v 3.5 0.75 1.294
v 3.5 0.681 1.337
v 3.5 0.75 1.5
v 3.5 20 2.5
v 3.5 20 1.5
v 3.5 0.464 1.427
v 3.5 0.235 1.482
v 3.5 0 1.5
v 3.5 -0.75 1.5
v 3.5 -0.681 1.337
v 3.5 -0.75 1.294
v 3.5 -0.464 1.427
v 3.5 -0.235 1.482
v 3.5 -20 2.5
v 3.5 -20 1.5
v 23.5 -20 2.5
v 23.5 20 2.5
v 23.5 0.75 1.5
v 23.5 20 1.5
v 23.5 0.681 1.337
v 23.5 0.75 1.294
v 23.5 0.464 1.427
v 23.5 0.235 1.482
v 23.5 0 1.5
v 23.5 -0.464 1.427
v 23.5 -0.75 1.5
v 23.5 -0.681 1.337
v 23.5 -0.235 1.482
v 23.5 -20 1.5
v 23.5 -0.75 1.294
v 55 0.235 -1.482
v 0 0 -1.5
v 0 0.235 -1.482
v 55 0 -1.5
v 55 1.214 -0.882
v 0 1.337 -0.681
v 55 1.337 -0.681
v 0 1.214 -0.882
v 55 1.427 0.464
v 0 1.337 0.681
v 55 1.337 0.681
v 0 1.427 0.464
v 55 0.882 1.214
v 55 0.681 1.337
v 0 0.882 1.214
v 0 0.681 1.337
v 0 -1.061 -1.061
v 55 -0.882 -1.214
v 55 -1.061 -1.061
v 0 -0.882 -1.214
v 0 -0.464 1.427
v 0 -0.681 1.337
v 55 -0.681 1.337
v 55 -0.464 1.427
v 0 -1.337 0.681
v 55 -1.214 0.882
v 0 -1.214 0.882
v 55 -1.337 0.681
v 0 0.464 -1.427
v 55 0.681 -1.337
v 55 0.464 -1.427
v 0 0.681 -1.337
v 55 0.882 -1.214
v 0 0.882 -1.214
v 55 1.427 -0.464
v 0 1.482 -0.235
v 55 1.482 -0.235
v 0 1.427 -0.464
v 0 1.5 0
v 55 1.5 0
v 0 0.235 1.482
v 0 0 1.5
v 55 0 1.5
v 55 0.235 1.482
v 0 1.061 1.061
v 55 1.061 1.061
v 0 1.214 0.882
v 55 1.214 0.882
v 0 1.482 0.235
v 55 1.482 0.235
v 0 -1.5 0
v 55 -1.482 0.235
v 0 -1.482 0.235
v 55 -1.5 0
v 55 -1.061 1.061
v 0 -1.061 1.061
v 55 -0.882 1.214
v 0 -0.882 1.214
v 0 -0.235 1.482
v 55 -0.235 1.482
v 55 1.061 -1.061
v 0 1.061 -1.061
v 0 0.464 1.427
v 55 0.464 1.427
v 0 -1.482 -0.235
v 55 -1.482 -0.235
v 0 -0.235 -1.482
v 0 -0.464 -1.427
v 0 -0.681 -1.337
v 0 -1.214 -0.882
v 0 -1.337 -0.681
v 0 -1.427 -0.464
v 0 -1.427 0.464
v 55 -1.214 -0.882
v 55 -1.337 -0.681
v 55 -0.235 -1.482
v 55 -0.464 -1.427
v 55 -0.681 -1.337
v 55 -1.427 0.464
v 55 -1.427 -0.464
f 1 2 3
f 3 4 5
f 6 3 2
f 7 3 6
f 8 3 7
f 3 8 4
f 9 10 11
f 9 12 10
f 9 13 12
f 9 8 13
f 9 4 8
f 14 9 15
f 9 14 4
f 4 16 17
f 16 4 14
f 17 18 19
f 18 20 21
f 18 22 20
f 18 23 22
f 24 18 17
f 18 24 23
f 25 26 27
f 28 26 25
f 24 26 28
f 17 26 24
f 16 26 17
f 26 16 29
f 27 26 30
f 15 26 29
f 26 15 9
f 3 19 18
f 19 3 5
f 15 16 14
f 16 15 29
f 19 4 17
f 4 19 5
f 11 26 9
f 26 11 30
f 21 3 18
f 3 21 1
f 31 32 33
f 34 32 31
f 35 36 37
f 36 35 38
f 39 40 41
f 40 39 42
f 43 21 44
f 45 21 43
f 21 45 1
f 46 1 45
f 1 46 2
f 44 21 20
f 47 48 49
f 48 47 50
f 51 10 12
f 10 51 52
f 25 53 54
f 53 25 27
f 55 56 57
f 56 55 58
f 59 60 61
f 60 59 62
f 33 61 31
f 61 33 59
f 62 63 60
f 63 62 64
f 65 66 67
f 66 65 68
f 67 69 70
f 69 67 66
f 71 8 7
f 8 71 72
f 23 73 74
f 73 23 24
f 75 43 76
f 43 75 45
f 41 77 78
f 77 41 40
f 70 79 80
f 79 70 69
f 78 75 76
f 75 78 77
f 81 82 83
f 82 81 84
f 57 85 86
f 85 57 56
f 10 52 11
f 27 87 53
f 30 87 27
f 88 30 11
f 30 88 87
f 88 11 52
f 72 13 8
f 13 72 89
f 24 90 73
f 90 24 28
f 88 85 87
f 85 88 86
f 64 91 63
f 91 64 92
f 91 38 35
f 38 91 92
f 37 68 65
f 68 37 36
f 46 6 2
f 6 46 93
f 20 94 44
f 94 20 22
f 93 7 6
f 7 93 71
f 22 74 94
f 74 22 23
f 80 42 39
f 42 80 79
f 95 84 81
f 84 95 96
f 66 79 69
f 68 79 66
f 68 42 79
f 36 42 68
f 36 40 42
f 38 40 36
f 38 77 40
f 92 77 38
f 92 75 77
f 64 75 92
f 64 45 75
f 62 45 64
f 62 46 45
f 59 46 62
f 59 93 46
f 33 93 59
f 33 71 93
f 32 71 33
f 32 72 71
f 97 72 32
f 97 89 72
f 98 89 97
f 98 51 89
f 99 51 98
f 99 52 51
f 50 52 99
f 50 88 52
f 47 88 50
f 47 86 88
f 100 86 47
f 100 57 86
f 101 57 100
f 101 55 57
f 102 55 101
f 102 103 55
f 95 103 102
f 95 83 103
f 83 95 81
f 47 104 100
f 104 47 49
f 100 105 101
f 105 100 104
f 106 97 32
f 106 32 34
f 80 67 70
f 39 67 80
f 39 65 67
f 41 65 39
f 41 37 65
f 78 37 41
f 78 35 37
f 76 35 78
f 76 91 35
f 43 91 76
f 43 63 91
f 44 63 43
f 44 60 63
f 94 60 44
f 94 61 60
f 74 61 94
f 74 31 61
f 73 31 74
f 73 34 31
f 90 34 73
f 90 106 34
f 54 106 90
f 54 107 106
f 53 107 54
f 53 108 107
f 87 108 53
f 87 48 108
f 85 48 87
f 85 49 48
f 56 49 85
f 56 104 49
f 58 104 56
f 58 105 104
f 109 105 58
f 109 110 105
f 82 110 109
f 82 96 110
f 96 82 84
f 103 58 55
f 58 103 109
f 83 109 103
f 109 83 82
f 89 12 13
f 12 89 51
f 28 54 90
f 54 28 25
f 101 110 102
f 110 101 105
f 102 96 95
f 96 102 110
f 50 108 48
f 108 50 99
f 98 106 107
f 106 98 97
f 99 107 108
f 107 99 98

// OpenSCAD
module target(){
    rotate([0,90,0])
        cylinder(h = 55, r = 1.5, $fn = 40);
}
    
module tool(){
    union(){
        translate([13.5,0,2])
            cube(size=[20, 40, 1], center=true);    
        translate([13.5,0,1.5])
            cube(size=[20, 1.5, 1.5], center=true);
    }
}

union(){
    target();
    tool();
}
